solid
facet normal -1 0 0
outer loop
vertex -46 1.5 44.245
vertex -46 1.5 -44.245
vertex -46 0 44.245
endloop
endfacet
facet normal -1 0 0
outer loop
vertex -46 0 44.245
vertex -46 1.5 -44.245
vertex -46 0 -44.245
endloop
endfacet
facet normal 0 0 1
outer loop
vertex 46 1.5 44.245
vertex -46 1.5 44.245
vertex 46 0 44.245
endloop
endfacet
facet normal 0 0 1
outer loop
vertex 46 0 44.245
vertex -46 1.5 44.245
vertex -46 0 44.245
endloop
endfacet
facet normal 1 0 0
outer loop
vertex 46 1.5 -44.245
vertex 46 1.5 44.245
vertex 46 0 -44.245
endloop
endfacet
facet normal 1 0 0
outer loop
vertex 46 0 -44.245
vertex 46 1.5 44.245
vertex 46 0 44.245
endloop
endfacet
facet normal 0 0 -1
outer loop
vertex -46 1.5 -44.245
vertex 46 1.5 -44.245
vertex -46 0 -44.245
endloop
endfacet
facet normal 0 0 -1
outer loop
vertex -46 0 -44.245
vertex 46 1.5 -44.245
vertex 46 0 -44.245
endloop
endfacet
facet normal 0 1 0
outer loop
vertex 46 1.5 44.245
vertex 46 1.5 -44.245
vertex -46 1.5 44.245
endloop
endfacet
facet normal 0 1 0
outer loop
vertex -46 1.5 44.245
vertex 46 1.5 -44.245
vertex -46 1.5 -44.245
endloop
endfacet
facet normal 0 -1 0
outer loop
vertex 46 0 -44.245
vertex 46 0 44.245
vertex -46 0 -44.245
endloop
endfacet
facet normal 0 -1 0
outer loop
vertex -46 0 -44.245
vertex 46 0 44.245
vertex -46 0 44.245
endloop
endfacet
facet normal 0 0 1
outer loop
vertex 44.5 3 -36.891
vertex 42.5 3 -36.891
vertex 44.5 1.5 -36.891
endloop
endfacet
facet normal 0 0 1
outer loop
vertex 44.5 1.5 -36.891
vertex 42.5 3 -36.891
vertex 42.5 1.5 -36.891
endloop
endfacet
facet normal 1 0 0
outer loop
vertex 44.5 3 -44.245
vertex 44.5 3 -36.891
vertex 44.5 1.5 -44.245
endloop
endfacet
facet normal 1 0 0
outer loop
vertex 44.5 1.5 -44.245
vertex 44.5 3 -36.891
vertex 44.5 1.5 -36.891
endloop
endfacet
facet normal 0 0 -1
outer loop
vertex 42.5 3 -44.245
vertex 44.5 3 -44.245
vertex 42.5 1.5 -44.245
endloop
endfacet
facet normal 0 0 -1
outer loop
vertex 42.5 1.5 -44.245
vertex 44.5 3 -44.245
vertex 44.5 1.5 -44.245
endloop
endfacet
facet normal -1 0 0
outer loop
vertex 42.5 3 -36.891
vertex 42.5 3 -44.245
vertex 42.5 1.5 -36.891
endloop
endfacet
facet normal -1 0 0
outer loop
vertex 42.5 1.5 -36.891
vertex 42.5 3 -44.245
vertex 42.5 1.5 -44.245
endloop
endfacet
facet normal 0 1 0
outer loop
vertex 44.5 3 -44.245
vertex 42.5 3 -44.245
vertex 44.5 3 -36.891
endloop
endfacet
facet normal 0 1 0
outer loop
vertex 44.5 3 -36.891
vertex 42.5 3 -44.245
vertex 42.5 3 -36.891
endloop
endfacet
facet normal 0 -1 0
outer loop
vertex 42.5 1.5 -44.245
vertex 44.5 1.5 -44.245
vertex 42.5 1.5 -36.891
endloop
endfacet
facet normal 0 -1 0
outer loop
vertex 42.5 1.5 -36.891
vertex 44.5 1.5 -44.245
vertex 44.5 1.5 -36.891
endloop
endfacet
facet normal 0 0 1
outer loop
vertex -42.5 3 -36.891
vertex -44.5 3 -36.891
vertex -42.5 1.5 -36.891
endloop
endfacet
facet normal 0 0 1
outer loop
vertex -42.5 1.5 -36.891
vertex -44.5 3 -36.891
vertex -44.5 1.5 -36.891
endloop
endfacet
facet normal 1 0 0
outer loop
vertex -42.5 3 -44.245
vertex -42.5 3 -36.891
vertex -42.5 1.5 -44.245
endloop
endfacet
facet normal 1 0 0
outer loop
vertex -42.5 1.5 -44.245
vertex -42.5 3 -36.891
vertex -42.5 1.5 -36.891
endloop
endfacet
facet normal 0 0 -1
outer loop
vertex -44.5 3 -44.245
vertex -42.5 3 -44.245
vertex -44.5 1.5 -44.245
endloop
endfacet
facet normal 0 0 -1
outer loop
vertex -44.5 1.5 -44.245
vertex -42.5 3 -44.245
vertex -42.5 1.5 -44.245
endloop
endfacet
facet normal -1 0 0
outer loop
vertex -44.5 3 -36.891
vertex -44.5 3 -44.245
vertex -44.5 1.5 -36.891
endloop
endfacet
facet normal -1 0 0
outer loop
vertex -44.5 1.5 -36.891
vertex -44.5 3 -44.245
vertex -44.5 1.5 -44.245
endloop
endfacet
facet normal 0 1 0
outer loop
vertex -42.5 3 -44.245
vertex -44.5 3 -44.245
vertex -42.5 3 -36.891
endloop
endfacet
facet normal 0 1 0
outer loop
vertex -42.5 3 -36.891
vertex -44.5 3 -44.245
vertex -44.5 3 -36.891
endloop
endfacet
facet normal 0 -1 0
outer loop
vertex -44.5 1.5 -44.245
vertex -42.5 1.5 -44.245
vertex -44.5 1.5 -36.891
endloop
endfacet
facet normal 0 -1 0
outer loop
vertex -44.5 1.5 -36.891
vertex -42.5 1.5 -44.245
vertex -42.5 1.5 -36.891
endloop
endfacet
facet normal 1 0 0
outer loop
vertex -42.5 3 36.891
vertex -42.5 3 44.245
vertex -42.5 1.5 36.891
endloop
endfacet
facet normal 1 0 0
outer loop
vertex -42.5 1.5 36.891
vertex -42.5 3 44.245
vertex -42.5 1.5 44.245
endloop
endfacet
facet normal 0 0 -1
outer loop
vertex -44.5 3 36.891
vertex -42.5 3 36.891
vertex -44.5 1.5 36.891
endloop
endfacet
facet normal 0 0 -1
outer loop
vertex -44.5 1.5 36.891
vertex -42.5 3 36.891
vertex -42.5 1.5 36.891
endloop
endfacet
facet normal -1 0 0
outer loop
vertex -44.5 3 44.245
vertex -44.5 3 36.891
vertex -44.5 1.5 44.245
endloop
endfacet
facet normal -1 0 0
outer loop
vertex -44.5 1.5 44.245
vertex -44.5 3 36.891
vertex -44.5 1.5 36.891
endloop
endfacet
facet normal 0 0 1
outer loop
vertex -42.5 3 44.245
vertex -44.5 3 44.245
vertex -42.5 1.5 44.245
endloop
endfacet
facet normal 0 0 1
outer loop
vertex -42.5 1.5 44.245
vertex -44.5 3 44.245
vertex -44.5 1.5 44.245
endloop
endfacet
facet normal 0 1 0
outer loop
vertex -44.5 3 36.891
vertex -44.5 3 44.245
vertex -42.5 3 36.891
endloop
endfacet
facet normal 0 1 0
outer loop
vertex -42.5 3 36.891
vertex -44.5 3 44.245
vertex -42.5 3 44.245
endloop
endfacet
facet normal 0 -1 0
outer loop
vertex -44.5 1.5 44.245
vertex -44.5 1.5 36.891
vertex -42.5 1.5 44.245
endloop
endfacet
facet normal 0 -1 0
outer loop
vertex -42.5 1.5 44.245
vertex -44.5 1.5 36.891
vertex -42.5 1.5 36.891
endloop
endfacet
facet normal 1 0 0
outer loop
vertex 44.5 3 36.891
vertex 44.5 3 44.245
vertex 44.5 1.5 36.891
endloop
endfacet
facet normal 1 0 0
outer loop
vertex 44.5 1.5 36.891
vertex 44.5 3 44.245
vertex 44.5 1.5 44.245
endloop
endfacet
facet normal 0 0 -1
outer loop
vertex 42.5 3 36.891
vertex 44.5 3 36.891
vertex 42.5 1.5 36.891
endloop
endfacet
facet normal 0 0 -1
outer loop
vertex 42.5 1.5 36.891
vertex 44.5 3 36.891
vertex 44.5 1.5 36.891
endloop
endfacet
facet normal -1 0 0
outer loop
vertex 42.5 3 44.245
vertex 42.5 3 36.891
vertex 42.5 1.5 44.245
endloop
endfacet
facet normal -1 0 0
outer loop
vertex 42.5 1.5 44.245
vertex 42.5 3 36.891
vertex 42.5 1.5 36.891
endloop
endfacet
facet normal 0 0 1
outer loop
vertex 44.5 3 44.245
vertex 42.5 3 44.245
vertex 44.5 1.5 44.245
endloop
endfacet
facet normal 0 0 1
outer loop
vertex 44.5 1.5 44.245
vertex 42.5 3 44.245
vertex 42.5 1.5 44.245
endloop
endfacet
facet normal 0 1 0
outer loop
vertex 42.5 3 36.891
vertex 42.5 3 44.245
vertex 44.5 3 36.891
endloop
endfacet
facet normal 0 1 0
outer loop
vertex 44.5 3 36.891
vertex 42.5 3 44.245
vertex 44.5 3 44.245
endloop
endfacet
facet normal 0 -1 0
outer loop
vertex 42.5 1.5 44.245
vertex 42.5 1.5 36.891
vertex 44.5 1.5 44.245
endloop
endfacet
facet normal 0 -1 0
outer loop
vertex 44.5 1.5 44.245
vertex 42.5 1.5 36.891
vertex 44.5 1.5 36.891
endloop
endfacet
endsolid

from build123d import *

# Parameters (mm, degrees)
SKETCH_1_W        = 92
SKETCH_1_H        = 88.49
EXTRUDE_1_DEPTH   = 1.5
SKETCH_2_W        = 2
SKETCH_2_H        = 7.35445201
EXTRUDE_2_DEPTH   = 1.5
EXTRUDE_2_2_DEPTH = 1.5
EXTRUDE_2_3_DEPTH = 1.5
EXTRUDE_2_4_DEPTH = 1.5


with BuildPart() as part:
    # Эскиз1 → Бобышка-Вытянуть1 (new body)
    with BuildSketch(Plane(origin=(0, 0, 0), x_dir=(1, 0, 0), z_dir=(0, 1, 0))):
        Rectangle(SKETCH_1_W, SKETCH_1_H)
    extrude(amount=EXTRUDE_1_DEPTH)


with BuildPart() as body_2:
    # Эскиз2 → Бобышка-Вытянуть2 (new body)
    with BuildSketch(Plane(origin=(0, 1.5, 0), x_dir=(1, 0, 0), z_dir=(0, 1, 0))):
        with Locations((43.5, 40.567773995)):
            Rectangle(SKETCH_2_W, SKETCH_2_H)
    extrude(amount=EXTRUDE_2_DEPTH)


with BuildPart() as body_3:
    # Эскиз2 → Extrude 2 2 (new body)
    with BuildSketch(Plane(origin=(0, 1.5, 0), x_dir=(1, 0, 0), z_dir=(0, 1, 0))):
        with Locations((-43.5, 40.567773995)):
            Rectangle(SKETCH_2_W, SKETCH_2_H)
    extrude(amount=EXTRUDE_2_2_DEPTH)


with BuildPart() as body_4:
    # Эскиз2 → Extrude 2 3 (new body)
    with BuildSketch(Plane(origin=(0, 1.5, 0), x_dir=(1, 0, 0), z_dir=(0, 1, 0))):
        with Locations((-43.5, -40.567773995)):
            Rectangle(SKETCH_2_W, SKETCH_2_H)
    extrude(amount=EXTRUDE_2_3_DEPTH)


with BuildPart() as body_5:
    # Эскиз2 → Extrude 2 4 (new body)
    with BuildSketch(Plane(origin=(0, 1.5, 0), x_dir=(1, 0, 0), z_dir=(0, 1, 0))):
        with Locations((43.5, -40.567773995)):
            Rectangle(SKETCH_2_W, SKETCH_2_H)
    extrude(amount=EXTRUDE_2_4_DEPTH)


solid = Compound([part.part, body_2.part, body_3.part, body_4.part, body_5.part])
